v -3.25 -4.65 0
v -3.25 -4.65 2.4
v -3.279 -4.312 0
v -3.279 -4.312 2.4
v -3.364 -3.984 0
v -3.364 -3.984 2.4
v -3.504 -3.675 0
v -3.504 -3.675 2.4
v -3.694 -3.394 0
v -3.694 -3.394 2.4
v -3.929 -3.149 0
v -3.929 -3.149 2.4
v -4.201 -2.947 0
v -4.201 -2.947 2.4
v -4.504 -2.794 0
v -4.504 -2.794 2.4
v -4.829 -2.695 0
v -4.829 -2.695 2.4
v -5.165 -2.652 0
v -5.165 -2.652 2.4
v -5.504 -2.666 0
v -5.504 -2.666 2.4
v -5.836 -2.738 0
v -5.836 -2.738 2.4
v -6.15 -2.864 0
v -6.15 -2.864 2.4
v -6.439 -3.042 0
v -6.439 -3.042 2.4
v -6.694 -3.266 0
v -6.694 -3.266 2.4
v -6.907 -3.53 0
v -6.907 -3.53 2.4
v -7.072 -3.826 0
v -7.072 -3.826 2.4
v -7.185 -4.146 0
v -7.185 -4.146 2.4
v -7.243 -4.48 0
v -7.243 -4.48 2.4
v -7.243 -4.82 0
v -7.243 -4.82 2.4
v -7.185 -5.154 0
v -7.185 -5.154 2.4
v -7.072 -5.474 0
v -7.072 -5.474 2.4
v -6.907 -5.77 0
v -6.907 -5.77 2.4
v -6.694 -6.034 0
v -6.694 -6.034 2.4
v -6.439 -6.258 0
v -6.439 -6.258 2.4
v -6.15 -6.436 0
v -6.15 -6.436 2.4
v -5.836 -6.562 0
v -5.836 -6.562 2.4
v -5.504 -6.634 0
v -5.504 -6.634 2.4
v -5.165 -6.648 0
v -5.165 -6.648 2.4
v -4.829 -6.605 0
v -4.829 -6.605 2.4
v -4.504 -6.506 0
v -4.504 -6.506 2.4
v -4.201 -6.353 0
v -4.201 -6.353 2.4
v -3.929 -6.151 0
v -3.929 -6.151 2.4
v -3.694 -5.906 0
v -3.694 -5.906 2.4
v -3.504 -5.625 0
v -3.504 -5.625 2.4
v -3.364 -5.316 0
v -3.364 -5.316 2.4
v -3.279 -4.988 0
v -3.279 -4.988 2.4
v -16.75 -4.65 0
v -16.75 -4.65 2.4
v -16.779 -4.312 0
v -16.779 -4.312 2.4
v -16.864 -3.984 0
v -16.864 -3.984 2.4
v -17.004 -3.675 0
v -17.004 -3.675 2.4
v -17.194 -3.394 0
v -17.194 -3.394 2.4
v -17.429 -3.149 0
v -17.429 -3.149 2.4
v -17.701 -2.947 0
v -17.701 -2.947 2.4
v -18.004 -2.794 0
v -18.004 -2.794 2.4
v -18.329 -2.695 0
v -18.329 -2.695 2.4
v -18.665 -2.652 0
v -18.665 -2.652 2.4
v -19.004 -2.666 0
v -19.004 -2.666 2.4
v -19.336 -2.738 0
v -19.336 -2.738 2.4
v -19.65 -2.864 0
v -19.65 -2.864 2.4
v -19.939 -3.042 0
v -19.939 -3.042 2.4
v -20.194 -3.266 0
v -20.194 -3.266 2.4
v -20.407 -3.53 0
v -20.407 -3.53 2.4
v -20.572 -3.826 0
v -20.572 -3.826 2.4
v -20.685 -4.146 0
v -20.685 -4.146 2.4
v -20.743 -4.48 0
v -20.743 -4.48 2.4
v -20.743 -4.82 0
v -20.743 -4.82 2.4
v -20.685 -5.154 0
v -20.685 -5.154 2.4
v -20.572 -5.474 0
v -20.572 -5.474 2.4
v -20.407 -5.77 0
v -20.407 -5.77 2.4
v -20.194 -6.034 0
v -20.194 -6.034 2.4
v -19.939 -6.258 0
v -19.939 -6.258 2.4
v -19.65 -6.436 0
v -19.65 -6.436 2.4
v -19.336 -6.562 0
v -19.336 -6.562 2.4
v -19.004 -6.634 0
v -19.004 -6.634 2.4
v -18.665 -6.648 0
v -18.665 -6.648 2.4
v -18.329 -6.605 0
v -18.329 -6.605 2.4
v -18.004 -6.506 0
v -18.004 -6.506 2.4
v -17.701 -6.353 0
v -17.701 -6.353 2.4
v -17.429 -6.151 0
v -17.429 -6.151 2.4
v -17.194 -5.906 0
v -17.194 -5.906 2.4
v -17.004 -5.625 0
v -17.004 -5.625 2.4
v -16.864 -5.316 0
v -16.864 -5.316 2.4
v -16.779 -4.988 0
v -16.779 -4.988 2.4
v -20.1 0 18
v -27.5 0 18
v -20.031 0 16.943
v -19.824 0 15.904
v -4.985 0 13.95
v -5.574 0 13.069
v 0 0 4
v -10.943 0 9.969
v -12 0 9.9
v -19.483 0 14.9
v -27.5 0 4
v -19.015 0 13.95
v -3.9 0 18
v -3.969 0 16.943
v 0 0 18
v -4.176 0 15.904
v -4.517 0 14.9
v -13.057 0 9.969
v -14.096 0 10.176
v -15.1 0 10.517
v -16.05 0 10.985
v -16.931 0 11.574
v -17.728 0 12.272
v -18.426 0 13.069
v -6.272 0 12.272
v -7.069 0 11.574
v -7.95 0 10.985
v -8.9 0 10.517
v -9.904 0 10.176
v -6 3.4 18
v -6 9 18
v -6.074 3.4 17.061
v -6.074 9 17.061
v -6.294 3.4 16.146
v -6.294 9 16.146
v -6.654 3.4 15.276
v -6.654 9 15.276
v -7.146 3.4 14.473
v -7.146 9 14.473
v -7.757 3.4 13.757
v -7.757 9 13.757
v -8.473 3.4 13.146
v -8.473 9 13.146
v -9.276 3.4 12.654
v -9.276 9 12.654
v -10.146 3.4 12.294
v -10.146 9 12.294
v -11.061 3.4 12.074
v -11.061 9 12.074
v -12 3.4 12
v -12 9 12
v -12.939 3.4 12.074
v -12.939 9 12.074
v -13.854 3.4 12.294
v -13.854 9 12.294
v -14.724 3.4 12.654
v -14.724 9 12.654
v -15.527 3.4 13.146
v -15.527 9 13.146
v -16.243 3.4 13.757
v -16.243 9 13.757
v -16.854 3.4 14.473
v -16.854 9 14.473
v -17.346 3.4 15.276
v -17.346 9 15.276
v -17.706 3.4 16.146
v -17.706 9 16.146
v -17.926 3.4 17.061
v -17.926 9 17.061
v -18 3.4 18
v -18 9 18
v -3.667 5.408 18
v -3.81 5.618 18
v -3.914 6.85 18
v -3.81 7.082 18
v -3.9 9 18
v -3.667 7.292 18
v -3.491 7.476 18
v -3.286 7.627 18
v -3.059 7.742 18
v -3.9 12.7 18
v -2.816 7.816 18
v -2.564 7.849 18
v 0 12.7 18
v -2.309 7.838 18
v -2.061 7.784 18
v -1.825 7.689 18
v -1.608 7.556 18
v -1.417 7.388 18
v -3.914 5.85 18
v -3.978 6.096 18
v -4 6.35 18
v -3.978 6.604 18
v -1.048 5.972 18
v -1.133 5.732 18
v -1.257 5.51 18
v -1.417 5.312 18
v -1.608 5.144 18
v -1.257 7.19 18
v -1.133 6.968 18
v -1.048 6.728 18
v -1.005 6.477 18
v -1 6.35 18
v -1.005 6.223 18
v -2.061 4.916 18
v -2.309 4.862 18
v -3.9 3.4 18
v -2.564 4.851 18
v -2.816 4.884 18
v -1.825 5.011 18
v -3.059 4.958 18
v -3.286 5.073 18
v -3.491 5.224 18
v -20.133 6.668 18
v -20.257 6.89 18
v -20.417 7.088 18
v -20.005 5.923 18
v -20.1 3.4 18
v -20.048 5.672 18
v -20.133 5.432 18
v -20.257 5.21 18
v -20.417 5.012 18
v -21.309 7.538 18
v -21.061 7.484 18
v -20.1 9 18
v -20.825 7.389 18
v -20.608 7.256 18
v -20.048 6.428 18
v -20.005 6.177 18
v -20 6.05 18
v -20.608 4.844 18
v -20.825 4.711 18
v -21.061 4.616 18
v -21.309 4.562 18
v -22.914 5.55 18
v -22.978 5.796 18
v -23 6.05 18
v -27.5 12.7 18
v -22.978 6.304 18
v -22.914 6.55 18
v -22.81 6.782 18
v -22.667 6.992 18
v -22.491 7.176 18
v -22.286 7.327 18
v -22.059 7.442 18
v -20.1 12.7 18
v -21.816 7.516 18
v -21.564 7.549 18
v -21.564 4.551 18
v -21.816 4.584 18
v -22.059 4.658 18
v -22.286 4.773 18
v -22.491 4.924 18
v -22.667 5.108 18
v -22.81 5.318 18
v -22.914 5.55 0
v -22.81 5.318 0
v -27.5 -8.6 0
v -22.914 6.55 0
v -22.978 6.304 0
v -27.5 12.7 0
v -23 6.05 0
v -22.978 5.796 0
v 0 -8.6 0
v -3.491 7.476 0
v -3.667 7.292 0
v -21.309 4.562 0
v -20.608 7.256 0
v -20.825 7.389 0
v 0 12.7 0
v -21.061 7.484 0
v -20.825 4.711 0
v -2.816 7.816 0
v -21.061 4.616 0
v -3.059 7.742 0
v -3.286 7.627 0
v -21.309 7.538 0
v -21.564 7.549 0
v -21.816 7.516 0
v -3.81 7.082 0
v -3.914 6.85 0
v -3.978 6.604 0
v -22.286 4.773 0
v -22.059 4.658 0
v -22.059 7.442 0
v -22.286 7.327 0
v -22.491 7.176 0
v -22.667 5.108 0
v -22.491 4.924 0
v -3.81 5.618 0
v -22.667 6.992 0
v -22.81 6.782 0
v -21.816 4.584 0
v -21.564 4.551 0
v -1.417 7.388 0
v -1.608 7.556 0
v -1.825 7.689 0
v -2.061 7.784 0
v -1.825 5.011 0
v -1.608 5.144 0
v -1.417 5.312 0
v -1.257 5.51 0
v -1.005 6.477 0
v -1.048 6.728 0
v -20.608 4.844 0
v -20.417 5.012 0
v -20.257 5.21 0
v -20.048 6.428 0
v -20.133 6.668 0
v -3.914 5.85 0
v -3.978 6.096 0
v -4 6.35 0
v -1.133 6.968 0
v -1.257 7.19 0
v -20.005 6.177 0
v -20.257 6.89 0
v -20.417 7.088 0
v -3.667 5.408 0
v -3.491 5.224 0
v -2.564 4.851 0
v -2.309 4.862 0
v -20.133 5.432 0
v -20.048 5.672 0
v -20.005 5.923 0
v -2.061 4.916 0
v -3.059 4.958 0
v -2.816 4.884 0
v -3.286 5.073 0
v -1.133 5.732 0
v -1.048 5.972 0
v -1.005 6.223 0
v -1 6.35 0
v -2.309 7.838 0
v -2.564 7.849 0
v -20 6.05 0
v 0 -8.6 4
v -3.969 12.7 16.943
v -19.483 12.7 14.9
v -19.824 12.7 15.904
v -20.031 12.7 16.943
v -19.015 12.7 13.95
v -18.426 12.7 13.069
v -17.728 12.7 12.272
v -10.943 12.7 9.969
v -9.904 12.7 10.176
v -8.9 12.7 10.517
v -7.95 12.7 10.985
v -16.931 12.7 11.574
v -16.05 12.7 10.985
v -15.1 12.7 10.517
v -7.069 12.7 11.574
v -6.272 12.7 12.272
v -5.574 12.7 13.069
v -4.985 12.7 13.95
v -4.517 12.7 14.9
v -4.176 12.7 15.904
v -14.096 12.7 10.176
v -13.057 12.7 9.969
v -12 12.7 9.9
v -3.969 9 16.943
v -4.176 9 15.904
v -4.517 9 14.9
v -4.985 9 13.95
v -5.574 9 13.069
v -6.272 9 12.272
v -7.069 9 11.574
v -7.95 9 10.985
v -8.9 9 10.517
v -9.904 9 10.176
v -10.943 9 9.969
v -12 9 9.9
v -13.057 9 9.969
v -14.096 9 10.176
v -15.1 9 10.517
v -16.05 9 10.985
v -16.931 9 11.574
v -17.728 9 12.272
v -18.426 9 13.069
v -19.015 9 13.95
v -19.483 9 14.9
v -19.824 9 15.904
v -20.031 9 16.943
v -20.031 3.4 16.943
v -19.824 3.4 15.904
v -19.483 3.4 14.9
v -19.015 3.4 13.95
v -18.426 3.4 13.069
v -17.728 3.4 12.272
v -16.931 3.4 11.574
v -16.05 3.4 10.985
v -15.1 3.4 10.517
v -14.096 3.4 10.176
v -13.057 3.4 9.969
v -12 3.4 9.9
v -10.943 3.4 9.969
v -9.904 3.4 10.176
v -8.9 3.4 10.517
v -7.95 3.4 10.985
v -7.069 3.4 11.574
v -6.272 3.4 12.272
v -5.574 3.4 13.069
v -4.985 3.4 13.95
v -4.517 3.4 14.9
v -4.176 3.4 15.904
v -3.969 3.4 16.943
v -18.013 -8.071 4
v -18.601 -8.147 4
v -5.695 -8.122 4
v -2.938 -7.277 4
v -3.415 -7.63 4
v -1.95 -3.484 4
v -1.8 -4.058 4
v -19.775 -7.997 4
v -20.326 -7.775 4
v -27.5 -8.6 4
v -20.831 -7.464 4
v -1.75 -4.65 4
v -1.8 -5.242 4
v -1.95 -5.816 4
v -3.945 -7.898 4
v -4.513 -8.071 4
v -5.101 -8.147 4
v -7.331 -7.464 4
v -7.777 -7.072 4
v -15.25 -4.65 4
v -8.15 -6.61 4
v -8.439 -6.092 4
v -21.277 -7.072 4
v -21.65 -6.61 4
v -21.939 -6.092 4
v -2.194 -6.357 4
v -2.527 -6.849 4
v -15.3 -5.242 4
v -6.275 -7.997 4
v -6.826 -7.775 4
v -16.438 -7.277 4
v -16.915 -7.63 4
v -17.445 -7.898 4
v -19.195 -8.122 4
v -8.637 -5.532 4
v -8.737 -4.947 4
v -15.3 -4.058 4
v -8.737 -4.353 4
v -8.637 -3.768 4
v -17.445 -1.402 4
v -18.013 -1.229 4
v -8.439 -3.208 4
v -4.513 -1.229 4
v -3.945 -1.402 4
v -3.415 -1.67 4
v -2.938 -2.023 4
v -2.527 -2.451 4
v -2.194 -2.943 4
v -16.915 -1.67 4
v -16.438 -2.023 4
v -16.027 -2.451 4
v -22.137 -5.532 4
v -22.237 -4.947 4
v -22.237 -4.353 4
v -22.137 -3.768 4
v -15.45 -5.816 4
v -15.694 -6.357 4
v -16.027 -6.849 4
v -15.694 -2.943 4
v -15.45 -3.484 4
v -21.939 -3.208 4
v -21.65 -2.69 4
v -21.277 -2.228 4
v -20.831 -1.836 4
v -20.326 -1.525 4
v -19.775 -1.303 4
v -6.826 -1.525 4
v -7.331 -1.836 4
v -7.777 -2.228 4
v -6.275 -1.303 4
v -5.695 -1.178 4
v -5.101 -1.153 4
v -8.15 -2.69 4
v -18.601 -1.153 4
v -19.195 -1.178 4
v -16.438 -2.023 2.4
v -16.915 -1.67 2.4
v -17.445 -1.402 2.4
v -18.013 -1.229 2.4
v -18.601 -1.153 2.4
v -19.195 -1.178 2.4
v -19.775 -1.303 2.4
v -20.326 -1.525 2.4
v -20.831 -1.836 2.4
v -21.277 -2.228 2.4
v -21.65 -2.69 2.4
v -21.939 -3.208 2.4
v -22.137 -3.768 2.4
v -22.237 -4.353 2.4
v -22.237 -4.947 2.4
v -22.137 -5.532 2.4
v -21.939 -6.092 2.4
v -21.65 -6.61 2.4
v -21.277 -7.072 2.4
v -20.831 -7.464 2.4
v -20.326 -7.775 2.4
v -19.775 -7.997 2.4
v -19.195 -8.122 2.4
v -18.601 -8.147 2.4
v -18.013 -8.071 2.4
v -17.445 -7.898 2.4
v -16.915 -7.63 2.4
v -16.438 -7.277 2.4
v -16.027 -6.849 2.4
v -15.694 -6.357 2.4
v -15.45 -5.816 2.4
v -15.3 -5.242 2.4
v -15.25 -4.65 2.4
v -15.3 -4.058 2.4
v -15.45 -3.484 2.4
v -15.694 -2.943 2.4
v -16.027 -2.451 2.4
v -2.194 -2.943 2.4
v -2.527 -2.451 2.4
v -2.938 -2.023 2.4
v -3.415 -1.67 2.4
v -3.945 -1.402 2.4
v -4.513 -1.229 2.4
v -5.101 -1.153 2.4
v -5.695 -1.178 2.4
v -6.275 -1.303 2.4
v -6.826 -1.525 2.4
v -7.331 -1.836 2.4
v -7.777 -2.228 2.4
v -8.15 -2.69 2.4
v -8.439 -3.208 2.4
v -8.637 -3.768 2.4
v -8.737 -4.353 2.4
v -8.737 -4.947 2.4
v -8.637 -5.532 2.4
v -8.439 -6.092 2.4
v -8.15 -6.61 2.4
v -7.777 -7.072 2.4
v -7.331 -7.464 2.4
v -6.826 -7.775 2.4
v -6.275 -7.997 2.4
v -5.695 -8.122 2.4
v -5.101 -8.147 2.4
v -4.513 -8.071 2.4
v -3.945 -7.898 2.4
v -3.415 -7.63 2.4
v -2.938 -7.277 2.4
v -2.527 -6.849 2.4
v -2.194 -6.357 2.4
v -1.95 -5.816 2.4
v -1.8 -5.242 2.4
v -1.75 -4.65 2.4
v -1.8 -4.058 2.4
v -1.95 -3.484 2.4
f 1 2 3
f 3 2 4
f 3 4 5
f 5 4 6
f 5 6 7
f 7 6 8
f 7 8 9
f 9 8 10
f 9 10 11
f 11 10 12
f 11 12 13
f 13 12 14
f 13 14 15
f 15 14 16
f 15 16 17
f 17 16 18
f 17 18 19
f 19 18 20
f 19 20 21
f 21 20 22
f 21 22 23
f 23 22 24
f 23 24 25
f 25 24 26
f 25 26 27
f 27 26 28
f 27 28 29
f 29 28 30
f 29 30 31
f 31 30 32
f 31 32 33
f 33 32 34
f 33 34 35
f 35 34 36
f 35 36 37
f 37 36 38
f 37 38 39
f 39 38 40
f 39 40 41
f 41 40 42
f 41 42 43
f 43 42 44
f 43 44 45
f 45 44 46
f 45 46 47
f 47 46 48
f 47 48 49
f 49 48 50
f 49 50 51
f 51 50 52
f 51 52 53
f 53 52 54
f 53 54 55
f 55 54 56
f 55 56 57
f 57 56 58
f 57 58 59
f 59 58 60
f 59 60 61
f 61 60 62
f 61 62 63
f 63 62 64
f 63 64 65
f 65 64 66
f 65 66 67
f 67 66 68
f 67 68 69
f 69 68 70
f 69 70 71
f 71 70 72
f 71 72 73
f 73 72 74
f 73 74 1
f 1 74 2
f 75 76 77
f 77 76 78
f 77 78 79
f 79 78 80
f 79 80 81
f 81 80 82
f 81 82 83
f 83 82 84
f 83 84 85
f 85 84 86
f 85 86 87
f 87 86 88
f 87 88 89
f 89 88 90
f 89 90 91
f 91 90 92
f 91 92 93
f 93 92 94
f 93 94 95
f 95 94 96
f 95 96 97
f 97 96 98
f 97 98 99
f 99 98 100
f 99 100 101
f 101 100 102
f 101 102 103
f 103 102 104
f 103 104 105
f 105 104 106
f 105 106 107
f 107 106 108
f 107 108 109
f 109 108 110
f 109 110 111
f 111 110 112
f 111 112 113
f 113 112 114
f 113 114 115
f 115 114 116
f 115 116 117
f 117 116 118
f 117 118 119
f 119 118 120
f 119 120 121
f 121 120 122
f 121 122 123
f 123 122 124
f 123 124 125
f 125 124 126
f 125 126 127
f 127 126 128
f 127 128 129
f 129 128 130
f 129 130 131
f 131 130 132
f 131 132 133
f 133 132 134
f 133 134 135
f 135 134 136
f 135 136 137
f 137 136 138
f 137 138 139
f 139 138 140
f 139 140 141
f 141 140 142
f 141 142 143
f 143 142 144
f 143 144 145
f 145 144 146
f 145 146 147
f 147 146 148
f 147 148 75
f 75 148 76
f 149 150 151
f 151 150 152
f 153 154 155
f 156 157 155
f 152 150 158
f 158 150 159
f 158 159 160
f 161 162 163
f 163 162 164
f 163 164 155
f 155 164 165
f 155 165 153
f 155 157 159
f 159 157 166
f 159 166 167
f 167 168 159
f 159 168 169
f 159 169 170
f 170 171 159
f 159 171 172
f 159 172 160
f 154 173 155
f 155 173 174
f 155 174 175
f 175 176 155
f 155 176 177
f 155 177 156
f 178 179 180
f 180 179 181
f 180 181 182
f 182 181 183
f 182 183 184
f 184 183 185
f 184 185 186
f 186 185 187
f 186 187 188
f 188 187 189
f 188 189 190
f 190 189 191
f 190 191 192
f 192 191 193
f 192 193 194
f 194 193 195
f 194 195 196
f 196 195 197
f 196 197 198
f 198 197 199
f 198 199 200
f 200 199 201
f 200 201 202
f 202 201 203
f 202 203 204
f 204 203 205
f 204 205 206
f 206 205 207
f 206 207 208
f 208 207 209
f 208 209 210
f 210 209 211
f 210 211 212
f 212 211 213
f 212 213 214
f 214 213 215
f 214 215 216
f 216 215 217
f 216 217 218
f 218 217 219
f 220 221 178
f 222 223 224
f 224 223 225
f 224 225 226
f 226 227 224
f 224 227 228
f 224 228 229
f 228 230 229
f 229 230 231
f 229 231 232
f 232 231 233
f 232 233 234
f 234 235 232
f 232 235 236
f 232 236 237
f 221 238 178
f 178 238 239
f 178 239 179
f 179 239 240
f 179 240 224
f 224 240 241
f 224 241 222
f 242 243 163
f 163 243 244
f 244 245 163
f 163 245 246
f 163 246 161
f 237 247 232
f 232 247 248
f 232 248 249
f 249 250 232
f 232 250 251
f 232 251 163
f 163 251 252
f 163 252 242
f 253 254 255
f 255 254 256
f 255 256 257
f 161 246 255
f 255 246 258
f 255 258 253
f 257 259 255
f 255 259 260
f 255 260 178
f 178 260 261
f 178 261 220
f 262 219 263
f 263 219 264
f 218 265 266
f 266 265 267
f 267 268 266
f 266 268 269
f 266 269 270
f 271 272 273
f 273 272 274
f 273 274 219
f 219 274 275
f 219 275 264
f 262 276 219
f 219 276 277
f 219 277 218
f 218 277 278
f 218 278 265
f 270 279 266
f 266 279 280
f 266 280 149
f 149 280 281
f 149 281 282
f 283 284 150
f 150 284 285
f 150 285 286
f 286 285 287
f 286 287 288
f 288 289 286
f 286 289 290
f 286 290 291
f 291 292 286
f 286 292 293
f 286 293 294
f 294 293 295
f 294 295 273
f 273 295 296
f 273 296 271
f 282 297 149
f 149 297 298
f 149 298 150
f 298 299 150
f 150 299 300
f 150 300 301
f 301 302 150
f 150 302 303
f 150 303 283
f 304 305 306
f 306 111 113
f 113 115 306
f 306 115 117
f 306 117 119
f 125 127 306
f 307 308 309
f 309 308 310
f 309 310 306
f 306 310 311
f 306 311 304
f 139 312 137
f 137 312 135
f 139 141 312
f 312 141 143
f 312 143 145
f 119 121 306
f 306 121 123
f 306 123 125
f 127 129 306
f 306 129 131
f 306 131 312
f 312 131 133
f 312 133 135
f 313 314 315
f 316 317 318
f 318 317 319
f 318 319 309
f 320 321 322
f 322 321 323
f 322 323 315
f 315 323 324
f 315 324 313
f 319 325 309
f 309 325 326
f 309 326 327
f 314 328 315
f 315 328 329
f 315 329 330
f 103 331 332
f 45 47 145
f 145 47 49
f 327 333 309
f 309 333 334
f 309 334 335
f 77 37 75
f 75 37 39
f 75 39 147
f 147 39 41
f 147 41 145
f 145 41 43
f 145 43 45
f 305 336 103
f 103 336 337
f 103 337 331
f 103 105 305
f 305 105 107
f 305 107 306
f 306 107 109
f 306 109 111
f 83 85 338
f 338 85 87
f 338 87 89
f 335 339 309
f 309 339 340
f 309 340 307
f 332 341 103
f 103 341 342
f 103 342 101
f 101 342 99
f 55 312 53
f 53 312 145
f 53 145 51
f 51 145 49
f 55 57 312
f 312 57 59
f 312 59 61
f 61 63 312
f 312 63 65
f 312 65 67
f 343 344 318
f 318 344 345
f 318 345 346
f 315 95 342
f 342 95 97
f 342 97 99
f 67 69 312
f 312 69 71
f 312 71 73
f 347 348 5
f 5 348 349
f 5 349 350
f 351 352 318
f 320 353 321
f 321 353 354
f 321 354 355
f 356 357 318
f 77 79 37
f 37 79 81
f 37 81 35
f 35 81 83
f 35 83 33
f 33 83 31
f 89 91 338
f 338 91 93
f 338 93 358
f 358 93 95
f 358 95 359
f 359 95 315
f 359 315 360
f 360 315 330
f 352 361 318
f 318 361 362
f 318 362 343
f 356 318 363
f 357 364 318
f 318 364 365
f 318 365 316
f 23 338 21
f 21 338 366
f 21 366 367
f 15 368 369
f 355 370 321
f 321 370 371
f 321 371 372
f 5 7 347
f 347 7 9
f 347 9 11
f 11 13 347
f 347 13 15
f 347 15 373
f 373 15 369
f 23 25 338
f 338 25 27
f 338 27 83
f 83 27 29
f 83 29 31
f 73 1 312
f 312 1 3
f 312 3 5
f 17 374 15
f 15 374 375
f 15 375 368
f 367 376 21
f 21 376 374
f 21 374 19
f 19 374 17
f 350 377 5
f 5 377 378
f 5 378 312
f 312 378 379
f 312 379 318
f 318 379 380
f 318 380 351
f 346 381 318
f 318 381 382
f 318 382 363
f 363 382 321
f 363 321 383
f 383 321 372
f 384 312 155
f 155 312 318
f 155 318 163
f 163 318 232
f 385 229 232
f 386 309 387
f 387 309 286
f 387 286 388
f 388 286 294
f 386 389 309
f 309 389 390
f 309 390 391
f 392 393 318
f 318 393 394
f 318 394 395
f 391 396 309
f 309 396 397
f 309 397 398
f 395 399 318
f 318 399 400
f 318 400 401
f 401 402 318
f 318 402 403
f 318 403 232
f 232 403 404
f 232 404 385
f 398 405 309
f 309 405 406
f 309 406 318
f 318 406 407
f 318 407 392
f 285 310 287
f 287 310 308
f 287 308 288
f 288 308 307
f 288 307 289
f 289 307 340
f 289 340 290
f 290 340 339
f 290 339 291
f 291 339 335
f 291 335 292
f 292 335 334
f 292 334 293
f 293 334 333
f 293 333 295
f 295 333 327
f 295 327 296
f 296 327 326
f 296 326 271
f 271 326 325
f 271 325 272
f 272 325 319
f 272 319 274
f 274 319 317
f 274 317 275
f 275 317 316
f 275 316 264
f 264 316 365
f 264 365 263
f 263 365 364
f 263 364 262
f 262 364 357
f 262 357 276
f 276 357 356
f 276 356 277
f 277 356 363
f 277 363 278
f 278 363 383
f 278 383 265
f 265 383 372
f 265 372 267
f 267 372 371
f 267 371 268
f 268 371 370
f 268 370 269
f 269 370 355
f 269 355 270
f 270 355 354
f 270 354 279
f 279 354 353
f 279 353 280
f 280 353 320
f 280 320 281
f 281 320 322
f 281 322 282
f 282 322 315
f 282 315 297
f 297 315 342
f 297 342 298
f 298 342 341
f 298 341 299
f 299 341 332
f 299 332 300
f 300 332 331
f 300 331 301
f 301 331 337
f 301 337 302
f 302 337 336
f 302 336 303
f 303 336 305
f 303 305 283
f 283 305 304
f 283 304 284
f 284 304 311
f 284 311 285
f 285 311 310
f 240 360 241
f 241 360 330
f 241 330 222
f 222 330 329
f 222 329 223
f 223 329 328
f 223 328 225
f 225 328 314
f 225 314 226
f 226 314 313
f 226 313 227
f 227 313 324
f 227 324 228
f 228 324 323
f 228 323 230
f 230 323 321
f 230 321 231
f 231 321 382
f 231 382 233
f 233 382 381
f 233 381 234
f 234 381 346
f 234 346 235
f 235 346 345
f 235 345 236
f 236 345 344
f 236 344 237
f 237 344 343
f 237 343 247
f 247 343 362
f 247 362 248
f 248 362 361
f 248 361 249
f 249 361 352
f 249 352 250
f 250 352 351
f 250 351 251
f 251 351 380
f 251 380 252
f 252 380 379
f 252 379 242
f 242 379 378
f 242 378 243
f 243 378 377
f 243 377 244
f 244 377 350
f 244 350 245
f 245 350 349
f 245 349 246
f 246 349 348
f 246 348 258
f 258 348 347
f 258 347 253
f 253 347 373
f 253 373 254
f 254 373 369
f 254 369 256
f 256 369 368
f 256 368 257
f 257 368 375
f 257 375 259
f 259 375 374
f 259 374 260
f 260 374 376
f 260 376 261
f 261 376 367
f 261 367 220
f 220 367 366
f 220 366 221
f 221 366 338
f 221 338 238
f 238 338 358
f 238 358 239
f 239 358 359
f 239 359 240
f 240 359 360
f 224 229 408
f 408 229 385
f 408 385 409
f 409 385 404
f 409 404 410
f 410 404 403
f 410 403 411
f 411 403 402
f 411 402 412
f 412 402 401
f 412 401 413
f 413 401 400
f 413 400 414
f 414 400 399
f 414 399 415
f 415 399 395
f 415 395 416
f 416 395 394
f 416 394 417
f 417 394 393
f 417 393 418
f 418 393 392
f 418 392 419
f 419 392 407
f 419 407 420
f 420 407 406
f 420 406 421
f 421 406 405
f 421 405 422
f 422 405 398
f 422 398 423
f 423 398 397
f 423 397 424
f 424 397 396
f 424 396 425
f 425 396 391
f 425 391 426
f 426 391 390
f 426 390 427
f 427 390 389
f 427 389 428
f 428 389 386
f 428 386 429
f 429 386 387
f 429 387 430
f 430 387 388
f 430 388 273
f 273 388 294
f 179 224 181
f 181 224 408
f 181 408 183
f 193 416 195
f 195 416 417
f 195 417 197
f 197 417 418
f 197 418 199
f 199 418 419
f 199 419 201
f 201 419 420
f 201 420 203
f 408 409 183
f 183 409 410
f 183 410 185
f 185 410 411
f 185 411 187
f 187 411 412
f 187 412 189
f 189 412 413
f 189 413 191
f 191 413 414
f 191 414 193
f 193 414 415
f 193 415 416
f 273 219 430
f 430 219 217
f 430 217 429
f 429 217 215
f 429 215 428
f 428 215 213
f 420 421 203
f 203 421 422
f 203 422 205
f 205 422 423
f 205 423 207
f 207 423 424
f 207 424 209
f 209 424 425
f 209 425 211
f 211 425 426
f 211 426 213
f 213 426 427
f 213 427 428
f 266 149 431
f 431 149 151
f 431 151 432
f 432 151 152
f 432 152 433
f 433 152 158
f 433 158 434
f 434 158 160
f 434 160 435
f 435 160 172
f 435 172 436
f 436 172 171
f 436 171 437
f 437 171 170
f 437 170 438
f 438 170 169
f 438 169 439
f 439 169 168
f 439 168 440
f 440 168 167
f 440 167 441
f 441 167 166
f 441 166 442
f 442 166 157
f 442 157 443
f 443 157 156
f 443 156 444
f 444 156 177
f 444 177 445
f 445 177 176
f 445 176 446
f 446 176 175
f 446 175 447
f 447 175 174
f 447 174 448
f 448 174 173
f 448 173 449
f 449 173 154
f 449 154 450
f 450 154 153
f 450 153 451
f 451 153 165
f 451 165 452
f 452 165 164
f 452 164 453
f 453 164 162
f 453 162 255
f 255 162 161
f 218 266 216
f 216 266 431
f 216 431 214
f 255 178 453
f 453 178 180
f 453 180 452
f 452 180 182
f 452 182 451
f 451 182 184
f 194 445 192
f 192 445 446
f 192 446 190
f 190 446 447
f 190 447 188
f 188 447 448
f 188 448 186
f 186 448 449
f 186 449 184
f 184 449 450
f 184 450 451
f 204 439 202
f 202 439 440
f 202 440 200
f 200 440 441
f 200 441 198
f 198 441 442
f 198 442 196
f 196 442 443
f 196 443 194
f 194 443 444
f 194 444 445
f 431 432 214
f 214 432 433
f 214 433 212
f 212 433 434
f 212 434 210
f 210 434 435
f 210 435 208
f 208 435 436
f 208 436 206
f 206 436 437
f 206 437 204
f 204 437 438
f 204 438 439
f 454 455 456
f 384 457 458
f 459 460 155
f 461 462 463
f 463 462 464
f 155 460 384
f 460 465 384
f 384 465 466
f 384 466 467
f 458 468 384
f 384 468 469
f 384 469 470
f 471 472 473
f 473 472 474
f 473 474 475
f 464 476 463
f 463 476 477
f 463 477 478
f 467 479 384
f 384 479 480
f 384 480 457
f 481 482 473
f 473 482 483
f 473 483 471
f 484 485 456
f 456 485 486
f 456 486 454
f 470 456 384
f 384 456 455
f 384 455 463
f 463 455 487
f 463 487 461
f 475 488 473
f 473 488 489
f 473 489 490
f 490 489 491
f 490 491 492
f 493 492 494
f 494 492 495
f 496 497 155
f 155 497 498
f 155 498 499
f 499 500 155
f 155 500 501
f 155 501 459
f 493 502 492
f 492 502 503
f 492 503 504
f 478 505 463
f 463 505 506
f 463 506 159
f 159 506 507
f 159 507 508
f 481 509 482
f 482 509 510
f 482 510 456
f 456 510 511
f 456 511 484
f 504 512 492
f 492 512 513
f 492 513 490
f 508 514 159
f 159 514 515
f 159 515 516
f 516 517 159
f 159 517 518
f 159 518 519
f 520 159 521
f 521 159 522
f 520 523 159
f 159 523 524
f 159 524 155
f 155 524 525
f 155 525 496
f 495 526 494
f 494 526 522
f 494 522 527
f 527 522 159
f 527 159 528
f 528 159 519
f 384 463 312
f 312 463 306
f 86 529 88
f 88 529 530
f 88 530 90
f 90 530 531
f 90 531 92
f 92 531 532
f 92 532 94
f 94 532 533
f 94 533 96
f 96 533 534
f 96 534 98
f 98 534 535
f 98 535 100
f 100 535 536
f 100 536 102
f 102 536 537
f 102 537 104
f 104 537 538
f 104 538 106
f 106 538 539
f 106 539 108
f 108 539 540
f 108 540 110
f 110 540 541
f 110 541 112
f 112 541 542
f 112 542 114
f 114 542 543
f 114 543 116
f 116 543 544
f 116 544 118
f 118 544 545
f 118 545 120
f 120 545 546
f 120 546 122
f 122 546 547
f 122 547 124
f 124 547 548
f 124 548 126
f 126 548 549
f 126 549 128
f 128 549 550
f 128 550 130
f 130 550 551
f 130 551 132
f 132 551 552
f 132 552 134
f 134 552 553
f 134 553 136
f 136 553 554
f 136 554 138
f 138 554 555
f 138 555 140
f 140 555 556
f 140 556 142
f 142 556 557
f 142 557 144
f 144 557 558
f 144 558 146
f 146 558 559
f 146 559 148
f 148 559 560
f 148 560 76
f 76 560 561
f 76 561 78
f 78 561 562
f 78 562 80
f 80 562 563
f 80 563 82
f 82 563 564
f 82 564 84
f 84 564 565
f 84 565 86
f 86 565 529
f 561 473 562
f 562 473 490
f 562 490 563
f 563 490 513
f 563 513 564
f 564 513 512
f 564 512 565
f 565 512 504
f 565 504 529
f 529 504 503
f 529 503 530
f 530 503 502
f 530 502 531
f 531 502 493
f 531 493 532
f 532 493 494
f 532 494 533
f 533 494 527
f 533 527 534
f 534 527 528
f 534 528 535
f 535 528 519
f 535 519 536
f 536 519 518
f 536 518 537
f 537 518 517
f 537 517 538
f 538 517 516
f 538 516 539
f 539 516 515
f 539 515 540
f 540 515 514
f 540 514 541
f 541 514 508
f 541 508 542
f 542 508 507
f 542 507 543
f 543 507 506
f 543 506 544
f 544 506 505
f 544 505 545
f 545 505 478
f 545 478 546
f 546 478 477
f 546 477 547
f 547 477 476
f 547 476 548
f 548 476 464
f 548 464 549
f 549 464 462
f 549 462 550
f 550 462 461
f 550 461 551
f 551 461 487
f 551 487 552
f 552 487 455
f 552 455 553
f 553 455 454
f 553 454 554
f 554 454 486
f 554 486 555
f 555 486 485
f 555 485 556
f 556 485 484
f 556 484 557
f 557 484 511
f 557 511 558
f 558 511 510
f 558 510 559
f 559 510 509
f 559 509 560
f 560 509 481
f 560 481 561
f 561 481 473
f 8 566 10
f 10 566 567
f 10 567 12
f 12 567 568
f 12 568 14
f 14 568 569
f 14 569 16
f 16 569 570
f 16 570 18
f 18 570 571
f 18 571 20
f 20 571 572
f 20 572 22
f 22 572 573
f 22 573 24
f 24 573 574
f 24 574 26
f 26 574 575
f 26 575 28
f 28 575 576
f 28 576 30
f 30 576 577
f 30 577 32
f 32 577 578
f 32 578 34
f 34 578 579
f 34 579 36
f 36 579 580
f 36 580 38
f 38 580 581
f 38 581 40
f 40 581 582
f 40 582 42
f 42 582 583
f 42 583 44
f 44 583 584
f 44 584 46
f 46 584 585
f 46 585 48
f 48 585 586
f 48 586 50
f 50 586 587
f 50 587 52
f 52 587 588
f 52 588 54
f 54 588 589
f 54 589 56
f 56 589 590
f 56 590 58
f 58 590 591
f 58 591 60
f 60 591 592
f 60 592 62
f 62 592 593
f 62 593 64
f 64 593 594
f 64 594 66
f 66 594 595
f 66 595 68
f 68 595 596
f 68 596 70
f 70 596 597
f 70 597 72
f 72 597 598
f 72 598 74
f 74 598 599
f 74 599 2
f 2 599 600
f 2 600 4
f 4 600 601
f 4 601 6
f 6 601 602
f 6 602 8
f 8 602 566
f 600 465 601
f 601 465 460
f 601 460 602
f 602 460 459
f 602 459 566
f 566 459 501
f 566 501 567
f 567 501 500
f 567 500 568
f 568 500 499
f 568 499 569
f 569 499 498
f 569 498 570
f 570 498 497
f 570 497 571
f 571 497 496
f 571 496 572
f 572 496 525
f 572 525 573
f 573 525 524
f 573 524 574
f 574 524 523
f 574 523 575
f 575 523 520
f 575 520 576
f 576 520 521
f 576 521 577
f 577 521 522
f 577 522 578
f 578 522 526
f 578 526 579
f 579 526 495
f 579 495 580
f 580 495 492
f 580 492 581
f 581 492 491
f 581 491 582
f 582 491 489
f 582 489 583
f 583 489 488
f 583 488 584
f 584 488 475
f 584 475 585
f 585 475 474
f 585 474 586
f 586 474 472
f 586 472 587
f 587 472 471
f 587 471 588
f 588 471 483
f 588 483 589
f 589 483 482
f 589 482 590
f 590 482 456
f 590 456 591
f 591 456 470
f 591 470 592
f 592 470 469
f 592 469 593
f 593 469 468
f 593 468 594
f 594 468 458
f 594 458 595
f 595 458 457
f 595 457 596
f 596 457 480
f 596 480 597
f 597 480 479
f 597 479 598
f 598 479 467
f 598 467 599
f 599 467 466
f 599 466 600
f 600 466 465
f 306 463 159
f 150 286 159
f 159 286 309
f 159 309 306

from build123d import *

# Parameters (mm, degrees)
SKETCH1_W           = 24
SKETCH1_H           = 12.7
SKETCH1_R           = 1.5
BOSS_EXTRUDE1_DEPTH = 18
SKETCH3_R           = 6
CUT_EXTRUDE1_DEPTH  = 15
SKETCH4_R           = 8.1
CUT_EXTRUDE2_DEPTH  = 3.7
CUT_EXTRUDE3_START  = -3.4
SKETCH5_R           = 8.1
CUT_EXTRUDE3_DEPTH  = 3.4
SKETCH6_W           = 24
SKETCH6_H           = 4
BOSS_EXTRUDE2_DEPTH = 8.6
SKETCH7_R           = 2
CUT_EXTRUDE4_DEPTH  = 8.6
SKETCH8_R           = 3.5
CUT_EXTRUDE5_DEPTH  = 1.6
BOSS_EXTRUDE3_DEPTH = 3.5


with BuildPart() as part:
    # Sketch1 → Boss-Extrude1 (new body)
    with BuildSketch(Plane.XY):
        with Locations((-12, 6.35)):
            Rectangle(SKETCH1_W, SKETCH1_H)
        with Locations((-21.5, 6.05)):
            Circle(SKETCH1_R, mode=Mode.SUBTRACT)
        with Locations((-2.5, 6.35)):
            Circle(SKETCH1_R, mode=Mode.SUBTRACT)
    extrude(amount=BOSS_EXTRUDE1_DEPTH)

    # Sketch3 → Cut-Extrude1 (cut)
    with BuildSketch(Plane(origin=(0, 12.7, 0), x_dir=(1, 0, 0), z_dir=(0, 1, 0))):
        with Locations((-12, -18)):
            Circle(SKETCH3_R)
    extrude(amount=-CUT_EXTRUDE1_DEPTH, mode=Mode.SUBTRACT)

    # Sketch4 → Cut-Extrude2 (cut)
    with BuildSketch(Plane(origin=(0, 12.7, 0), x_dir=(1, 0, 0), z_dir=(0, 1, 0))):
        with Locations((-12, -18)):
            Circle(SKETCH4_R)
    extrude(amount=-CUT_EXTRUDE2_DEPTH, mode=Mode.SUBTRACT)

    # Sketch5 → Cut-Extrude3 (cut)
    with BuildSketch(Plane.XZ.offset(CUT_EXTRUDE3_START)):
        with Locations((-12, 18)):
            Circle(SKETCH5_R)
    extrude(amount=CUT_EXTRUDE3_DEPTH, mode=Mode.SUBTRACT)

    # Sketch6 → Boss-Extrude2 (add)
    with BuildSketch(Plane.XZ):
        with Locations((-12, 2)):
            Rectangle(SKETCH6_W, SKETCH6_H)
    extrude(amount=BOSS_EXTRUDE2_DEPTH)

    # Sketch7 → Cut-Extrude4 (cut)
    with BuildSketch(Plane.XY.offset(4)):
        with Locations((-18.75, -4.65)):
            Circle(SKETCH7_R)
        with Locations((-5.25, -4.65)):
            Circle(SKETCH7_R)
    extrude(amount=-CUT_EXTRUDE4_DEPTH, mode=Mode.SUBTRACT)

    # Sketch8 → Cut-Extrude5 (cut)
    with BuildSketch(Plane.XY.offset(4)):
        with Locations((-18.75, -4.65)):
            Circle(SKETCH8_R)
        with Locations((-5.25, -4.65)):
            Circle(SKETCH8_R)
    extrude(amount=-CUT_EXTRUDE5_DEPTH, mode=Mode.SUBTRACT)

    # Sketch9 → Boss-Extrude3 (add)
    with BuildSketch(Plane.ZY.offset(24)):
        Polygon((0, 12.7), (0, -8.6), (4, -8.6), (4, 0), (18, 0), (18, 12.7), align=None)
    extrude(amount=BOSS_EXTRUDE3_DEPTH)


solid = part.part
